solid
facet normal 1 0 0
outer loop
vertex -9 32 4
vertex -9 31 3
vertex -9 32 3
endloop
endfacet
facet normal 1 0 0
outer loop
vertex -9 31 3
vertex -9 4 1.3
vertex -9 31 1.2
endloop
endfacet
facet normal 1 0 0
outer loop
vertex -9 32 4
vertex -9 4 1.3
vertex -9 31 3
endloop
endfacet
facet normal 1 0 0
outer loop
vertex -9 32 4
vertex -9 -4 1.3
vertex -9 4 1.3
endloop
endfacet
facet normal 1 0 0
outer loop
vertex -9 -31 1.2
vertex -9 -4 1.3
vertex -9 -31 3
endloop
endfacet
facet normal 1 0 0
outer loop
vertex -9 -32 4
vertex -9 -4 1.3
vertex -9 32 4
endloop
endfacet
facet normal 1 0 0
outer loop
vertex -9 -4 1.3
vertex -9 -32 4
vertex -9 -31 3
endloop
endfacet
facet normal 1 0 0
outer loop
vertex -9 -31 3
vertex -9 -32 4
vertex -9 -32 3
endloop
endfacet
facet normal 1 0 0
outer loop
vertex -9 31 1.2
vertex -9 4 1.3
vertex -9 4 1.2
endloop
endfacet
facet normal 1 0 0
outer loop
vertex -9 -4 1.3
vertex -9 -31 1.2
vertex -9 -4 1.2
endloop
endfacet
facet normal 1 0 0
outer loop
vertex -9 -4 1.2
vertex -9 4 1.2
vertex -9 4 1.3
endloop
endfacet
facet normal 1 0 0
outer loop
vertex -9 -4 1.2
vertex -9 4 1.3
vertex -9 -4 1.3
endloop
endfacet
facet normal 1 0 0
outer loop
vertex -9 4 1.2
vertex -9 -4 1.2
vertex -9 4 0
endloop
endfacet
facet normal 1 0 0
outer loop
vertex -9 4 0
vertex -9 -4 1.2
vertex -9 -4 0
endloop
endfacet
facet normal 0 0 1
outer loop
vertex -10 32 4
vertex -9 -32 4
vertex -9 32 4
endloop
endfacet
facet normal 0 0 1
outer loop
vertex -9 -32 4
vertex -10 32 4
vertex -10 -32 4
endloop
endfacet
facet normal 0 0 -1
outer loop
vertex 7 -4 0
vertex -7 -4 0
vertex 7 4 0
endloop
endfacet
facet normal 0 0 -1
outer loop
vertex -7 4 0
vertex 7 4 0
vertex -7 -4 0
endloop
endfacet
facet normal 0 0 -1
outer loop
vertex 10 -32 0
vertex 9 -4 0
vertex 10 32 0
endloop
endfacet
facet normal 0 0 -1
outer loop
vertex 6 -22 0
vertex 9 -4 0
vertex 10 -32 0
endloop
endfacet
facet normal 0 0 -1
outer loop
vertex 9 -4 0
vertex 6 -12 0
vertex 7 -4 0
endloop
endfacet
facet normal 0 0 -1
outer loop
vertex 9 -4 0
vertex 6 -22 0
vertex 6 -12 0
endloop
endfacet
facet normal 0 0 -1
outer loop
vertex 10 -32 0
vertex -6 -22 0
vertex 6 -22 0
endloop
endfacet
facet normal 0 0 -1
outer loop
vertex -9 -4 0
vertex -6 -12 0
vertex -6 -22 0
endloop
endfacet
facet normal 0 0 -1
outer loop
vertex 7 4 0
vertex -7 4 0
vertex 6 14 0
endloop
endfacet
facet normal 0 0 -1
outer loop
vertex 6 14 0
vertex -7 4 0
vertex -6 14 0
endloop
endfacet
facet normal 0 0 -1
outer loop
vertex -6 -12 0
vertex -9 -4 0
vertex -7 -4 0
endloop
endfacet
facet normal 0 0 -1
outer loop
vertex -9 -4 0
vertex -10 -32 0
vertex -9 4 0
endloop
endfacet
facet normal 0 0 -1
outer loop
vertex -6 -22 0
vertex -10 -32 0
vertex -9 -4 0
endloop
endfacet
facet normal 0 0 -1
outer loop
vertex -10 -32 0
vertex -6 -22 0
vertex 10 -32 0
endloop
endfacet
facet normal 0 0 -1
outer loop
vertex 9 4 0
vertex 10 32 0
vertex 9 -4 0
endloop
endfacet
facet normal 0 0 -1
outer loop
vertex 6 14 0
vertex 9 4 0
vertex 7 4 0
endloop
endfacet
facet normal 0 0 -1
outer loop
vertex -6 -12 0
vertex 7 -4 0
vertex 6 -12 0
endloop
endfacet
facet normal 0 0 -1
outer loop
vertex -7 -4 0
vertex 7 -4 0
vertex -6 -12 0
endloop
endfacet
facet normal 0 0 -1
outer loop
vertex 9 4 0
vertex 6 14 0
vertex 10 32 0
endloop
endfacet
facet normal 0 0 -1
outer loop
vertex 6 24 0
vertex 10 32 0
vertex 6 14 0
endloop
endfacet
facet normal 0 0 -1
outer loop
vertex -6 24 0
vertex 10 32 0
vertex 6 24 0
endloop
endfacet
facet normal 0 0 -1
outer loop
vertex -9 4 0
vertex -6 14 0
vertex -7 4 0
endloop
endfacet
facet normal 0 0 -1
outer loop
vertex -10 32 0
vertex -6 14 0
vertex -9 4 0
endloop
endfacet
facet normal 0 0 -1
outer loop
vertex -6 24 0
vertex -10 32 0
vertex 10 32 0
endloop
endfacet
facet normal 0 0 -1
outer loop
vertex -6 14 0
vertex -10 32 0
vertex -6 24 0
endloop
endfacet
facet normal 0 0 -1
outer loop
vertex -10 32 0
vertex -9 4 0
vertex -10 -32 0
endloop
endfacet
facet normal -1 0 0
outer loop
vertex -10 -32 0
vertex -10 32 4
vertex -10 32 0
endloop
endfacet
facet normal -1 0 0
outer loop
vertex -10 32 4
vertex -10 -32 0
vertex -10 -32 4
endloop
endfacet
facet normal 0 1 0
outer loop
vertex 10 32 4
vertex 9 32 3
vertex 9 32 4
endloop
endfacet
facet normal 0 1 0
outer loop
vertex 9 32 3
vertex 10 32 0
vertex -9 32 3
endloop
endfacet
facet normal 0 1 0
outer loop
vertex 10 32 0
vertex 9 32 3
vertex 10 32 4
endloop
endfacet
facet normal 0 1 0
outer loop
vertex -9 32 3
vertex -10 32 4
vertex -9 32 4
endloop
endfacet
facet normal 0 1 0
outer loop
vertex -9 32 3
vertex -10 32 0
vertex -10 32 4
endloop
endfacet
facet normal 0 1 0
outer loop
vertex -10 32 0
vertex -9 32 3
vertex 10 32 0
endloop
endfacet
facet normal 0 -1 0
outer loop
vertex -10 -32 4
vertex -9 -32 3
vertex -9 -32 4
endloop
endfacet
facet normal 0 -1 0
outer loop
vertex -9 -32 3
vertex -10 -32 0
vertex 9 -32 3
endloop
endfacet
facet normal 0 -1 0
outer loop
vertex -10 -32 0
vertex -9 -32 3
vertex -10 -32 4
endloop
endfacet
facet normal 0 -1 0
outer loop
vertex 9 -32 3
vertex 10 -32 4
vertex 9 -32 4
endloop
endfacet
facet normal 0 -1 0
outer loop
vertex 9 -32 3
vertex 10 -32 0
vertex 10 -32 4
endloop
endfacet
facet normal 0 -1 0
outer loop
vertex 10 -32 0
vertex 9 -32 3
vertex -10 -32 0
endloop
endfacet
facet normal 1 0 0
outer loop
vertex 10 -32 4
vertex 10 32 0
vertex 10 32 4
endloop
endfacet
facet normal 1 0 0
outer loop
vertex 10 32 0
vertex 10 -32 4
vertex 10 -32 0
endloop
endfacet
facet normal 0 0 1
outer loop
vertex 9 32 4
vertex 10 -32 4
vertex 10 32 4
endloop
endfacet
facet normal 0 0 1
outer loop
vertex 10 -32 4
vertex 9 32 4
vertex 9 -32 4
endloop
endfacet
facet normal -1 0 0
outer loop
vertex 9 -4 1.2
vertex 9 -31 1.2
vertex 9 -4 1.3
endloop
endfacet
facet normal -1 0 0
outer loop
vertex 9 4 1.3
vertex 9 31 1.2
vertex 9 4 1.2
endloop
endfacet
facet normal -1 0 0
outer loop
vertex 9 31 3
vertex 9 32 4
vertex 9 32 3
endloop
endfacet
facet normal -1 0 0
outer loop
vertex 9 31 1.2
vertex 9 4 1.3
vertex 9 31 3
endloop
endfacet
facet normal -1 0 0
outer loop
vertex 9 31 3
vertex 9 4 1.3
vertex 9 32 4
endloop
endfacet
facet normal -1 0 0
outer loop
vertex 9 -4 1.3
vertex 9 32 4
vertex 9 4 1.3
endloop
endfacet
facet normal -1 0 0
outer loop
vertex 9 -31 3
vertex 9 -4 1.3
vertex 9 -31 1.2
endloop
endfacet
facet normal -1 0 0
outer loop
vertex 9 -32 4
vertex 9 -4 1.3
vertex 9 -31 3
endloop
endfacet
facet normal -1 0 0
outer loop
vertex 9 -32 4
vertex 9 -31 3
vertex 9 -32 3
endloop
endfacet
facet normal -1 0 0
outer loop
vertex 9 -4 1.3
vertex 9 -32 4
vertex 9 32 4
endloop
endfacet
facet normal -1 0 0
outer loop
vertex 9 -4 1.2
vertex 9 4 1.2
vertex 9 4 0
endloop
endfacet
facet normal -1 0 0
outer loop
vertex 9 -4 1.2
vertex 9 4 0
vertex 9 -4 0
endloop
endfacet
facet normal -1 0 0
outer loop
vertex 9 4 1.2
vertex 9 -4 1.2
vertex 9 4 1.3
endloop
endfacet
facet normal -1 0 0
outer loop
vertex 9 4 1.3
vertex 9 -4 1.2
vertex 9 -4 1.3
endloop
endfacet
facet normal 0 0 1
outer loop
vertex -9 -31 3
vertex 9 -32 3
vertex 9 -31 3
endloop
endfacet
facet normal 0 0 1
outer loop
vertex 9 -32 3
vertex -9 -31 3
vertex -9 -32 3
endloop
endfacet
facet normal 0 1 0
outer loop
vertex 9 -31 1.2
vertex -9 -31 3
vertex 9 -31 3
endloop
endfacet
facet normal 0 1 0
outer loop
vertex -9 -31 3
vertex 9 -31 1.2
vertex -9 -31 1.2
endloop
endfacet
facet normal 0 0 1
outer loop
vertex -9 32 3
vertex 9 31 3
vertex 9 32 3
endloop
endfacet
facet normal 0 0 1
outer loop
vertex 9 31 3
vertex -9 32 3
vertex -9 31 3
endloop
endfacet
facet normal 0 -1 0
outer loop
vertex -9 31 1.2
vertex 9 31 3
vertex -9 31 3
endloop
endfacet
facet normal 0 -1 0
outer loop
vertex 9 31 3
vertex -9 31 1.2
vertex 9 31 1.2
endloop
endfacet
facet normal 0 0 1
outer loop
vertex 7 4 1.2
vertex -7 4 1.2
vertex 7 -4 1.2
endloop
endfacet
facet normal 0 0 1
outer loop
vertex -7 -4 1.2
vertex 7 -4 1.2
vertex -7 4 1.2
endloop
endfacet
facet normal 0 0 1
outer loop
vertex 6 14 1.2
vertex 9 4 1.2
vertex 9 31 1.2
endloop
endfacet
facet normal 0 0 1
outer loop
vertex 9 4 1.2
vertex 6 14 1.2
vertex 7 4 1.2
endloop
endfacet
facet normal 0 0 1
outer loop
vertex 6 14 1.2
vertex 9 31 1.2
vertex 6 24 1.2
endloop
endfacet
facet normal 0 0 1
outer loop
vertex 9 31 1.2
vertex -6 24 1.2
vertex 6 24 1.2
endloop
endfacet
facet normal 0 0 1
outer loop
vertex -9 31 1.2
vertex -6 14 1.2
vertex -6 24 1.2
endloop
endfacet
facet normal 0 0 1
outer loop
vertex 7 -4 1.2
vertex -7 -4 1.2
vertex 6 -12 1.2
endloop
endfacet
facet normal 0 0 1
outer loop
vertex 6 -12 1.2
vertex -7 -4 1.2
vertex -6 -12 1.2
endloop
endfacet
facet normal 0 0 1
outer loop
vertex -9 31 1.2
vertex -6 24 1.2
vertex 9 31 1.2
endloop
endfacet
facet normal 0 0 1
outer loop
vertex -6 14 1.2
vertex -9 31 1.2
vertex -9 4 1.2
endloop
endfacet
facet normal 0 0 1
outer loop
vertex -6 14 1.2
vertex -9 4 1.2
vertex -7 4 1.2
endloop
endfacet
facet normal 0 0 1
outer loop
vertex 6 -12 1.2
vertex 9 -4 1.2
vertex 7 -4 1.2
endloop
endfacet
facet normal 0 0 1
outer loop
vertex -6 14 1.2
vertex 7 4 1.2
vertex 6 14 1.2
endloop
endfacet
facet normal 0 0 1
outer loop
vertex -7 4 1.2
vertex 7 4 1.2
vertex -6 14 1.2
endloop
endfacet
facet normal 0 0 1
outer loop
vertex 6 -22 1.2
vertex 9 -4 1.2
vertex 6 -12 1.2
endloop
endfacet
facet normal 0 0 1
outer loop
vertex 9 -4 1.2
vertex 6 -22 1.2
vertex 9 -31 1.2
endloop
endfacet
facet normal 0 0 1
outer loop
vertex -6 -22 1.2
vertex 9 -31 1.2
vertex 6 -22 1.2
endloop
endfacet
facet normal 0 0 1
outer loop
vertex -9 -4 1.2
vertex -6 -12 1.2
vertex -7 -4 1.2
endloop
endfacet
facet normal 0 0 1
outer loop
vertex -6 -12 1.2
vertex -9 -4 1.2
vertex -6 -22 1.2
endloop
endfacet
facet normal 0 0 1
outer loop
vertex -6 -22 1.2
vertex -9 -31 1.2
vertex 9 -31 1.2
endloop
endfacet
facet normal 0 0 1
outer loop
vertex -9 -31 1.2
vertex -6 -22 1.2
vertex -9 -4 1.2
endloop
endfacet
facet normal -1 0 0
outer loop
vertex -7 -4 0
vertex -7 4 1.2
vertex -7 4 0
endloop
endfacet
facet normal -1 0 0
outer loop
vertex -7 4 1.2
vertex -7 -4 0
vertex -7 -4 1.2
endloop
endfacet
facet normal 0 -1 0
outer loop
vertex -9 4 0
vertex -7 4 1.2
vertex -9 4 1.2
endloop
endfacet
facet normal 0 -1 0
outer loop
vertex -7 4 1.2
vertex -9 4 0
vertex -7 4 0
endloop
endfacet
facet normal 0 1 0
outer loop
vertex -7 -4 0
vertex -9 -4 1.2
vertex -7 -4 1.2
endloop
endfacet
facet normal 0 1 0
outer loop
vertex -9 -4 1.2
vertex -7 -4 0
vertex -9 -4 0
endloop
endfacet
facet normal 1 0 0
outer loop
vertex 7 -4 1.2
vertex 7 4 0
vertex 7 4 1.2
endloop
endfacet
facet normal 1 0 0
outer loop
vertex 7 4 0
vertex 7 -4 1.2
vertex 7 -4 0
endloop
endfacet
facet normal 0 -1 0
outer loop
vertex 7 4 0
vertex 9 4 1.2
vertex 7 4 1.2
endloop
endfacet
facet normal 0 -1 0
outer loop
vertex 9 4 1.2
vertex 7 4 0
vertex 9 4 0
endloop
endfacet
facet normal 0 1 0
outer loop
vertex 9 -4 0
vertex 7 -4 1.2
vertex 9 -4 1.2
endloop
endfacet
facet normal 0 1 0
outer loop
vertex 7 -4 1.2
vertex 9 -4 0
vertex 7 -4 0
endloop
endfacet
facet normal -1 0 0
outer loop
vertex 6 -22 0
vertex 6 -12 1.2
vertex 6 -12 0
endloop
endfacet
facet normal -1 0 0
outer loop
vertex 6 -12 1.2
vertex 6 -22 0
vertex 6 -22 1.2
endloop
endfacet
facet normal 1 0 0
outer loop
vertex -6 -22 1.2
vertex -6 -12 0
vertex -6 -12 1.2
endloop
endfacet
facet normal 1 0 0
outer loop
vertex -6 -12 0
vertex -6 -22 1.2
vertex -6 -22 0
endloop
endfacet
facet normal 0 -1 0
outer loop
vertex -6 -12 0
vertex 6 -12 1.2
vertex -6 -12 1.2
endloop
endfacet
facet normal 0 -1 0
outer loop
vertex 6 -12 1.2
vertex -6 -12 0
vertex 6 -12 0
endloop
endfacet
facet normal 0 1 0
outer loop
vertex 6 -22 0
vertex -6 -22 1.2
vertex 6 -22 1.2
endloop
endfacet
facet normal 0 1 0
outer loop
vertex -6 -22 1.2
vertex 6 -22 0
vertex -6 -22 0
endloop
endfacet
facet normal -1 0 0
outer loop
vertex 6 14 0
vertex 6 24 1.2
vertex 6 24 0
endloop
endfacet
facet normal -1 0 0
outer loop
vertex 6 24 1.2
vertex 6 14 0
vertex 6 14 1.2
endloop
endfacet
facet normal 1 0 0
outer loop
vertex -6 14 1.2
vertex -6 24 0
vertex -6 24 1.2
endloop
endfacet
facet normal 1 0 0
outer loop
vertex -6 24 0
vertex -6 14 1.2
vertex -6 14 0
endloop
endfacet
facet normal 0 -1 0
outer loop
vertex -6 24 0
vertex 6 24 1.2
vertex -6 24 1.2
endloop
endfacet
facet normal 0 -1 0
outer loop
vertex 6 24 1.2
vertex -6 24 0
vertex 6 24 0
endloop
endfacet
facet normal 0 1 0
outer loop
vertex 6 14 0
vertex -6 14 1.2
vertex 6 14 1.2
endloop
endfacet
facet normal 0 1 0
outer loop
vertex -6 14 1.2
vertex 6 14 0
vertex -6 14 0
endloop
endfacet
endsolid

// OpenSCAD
// Clearance envelope, not a claim about a shipped cell: 62 x 18 x 8 mm.
// Cradle is strapped beneath the center plate; pack and pigtail remain removable.
$fn=24;
difference(){
  union(){
    translate([-10,-32,0])cube([20,64,1.2]);
    for(x=[-10,9])translate([x,-32,0])cube([1,64,4]);
    for(y=[-32,31])translate([-10,y,0])cube([20,1,3]);
  }
  for(x=[-9,7])translate([x,-4,-.1])cube([2,8,1.4]);
  // Keep material around strap/edges while reducing mass.
  for(y=[-22,14])translate([-6,y,-.1])cube([12,10,1.4]);
}
